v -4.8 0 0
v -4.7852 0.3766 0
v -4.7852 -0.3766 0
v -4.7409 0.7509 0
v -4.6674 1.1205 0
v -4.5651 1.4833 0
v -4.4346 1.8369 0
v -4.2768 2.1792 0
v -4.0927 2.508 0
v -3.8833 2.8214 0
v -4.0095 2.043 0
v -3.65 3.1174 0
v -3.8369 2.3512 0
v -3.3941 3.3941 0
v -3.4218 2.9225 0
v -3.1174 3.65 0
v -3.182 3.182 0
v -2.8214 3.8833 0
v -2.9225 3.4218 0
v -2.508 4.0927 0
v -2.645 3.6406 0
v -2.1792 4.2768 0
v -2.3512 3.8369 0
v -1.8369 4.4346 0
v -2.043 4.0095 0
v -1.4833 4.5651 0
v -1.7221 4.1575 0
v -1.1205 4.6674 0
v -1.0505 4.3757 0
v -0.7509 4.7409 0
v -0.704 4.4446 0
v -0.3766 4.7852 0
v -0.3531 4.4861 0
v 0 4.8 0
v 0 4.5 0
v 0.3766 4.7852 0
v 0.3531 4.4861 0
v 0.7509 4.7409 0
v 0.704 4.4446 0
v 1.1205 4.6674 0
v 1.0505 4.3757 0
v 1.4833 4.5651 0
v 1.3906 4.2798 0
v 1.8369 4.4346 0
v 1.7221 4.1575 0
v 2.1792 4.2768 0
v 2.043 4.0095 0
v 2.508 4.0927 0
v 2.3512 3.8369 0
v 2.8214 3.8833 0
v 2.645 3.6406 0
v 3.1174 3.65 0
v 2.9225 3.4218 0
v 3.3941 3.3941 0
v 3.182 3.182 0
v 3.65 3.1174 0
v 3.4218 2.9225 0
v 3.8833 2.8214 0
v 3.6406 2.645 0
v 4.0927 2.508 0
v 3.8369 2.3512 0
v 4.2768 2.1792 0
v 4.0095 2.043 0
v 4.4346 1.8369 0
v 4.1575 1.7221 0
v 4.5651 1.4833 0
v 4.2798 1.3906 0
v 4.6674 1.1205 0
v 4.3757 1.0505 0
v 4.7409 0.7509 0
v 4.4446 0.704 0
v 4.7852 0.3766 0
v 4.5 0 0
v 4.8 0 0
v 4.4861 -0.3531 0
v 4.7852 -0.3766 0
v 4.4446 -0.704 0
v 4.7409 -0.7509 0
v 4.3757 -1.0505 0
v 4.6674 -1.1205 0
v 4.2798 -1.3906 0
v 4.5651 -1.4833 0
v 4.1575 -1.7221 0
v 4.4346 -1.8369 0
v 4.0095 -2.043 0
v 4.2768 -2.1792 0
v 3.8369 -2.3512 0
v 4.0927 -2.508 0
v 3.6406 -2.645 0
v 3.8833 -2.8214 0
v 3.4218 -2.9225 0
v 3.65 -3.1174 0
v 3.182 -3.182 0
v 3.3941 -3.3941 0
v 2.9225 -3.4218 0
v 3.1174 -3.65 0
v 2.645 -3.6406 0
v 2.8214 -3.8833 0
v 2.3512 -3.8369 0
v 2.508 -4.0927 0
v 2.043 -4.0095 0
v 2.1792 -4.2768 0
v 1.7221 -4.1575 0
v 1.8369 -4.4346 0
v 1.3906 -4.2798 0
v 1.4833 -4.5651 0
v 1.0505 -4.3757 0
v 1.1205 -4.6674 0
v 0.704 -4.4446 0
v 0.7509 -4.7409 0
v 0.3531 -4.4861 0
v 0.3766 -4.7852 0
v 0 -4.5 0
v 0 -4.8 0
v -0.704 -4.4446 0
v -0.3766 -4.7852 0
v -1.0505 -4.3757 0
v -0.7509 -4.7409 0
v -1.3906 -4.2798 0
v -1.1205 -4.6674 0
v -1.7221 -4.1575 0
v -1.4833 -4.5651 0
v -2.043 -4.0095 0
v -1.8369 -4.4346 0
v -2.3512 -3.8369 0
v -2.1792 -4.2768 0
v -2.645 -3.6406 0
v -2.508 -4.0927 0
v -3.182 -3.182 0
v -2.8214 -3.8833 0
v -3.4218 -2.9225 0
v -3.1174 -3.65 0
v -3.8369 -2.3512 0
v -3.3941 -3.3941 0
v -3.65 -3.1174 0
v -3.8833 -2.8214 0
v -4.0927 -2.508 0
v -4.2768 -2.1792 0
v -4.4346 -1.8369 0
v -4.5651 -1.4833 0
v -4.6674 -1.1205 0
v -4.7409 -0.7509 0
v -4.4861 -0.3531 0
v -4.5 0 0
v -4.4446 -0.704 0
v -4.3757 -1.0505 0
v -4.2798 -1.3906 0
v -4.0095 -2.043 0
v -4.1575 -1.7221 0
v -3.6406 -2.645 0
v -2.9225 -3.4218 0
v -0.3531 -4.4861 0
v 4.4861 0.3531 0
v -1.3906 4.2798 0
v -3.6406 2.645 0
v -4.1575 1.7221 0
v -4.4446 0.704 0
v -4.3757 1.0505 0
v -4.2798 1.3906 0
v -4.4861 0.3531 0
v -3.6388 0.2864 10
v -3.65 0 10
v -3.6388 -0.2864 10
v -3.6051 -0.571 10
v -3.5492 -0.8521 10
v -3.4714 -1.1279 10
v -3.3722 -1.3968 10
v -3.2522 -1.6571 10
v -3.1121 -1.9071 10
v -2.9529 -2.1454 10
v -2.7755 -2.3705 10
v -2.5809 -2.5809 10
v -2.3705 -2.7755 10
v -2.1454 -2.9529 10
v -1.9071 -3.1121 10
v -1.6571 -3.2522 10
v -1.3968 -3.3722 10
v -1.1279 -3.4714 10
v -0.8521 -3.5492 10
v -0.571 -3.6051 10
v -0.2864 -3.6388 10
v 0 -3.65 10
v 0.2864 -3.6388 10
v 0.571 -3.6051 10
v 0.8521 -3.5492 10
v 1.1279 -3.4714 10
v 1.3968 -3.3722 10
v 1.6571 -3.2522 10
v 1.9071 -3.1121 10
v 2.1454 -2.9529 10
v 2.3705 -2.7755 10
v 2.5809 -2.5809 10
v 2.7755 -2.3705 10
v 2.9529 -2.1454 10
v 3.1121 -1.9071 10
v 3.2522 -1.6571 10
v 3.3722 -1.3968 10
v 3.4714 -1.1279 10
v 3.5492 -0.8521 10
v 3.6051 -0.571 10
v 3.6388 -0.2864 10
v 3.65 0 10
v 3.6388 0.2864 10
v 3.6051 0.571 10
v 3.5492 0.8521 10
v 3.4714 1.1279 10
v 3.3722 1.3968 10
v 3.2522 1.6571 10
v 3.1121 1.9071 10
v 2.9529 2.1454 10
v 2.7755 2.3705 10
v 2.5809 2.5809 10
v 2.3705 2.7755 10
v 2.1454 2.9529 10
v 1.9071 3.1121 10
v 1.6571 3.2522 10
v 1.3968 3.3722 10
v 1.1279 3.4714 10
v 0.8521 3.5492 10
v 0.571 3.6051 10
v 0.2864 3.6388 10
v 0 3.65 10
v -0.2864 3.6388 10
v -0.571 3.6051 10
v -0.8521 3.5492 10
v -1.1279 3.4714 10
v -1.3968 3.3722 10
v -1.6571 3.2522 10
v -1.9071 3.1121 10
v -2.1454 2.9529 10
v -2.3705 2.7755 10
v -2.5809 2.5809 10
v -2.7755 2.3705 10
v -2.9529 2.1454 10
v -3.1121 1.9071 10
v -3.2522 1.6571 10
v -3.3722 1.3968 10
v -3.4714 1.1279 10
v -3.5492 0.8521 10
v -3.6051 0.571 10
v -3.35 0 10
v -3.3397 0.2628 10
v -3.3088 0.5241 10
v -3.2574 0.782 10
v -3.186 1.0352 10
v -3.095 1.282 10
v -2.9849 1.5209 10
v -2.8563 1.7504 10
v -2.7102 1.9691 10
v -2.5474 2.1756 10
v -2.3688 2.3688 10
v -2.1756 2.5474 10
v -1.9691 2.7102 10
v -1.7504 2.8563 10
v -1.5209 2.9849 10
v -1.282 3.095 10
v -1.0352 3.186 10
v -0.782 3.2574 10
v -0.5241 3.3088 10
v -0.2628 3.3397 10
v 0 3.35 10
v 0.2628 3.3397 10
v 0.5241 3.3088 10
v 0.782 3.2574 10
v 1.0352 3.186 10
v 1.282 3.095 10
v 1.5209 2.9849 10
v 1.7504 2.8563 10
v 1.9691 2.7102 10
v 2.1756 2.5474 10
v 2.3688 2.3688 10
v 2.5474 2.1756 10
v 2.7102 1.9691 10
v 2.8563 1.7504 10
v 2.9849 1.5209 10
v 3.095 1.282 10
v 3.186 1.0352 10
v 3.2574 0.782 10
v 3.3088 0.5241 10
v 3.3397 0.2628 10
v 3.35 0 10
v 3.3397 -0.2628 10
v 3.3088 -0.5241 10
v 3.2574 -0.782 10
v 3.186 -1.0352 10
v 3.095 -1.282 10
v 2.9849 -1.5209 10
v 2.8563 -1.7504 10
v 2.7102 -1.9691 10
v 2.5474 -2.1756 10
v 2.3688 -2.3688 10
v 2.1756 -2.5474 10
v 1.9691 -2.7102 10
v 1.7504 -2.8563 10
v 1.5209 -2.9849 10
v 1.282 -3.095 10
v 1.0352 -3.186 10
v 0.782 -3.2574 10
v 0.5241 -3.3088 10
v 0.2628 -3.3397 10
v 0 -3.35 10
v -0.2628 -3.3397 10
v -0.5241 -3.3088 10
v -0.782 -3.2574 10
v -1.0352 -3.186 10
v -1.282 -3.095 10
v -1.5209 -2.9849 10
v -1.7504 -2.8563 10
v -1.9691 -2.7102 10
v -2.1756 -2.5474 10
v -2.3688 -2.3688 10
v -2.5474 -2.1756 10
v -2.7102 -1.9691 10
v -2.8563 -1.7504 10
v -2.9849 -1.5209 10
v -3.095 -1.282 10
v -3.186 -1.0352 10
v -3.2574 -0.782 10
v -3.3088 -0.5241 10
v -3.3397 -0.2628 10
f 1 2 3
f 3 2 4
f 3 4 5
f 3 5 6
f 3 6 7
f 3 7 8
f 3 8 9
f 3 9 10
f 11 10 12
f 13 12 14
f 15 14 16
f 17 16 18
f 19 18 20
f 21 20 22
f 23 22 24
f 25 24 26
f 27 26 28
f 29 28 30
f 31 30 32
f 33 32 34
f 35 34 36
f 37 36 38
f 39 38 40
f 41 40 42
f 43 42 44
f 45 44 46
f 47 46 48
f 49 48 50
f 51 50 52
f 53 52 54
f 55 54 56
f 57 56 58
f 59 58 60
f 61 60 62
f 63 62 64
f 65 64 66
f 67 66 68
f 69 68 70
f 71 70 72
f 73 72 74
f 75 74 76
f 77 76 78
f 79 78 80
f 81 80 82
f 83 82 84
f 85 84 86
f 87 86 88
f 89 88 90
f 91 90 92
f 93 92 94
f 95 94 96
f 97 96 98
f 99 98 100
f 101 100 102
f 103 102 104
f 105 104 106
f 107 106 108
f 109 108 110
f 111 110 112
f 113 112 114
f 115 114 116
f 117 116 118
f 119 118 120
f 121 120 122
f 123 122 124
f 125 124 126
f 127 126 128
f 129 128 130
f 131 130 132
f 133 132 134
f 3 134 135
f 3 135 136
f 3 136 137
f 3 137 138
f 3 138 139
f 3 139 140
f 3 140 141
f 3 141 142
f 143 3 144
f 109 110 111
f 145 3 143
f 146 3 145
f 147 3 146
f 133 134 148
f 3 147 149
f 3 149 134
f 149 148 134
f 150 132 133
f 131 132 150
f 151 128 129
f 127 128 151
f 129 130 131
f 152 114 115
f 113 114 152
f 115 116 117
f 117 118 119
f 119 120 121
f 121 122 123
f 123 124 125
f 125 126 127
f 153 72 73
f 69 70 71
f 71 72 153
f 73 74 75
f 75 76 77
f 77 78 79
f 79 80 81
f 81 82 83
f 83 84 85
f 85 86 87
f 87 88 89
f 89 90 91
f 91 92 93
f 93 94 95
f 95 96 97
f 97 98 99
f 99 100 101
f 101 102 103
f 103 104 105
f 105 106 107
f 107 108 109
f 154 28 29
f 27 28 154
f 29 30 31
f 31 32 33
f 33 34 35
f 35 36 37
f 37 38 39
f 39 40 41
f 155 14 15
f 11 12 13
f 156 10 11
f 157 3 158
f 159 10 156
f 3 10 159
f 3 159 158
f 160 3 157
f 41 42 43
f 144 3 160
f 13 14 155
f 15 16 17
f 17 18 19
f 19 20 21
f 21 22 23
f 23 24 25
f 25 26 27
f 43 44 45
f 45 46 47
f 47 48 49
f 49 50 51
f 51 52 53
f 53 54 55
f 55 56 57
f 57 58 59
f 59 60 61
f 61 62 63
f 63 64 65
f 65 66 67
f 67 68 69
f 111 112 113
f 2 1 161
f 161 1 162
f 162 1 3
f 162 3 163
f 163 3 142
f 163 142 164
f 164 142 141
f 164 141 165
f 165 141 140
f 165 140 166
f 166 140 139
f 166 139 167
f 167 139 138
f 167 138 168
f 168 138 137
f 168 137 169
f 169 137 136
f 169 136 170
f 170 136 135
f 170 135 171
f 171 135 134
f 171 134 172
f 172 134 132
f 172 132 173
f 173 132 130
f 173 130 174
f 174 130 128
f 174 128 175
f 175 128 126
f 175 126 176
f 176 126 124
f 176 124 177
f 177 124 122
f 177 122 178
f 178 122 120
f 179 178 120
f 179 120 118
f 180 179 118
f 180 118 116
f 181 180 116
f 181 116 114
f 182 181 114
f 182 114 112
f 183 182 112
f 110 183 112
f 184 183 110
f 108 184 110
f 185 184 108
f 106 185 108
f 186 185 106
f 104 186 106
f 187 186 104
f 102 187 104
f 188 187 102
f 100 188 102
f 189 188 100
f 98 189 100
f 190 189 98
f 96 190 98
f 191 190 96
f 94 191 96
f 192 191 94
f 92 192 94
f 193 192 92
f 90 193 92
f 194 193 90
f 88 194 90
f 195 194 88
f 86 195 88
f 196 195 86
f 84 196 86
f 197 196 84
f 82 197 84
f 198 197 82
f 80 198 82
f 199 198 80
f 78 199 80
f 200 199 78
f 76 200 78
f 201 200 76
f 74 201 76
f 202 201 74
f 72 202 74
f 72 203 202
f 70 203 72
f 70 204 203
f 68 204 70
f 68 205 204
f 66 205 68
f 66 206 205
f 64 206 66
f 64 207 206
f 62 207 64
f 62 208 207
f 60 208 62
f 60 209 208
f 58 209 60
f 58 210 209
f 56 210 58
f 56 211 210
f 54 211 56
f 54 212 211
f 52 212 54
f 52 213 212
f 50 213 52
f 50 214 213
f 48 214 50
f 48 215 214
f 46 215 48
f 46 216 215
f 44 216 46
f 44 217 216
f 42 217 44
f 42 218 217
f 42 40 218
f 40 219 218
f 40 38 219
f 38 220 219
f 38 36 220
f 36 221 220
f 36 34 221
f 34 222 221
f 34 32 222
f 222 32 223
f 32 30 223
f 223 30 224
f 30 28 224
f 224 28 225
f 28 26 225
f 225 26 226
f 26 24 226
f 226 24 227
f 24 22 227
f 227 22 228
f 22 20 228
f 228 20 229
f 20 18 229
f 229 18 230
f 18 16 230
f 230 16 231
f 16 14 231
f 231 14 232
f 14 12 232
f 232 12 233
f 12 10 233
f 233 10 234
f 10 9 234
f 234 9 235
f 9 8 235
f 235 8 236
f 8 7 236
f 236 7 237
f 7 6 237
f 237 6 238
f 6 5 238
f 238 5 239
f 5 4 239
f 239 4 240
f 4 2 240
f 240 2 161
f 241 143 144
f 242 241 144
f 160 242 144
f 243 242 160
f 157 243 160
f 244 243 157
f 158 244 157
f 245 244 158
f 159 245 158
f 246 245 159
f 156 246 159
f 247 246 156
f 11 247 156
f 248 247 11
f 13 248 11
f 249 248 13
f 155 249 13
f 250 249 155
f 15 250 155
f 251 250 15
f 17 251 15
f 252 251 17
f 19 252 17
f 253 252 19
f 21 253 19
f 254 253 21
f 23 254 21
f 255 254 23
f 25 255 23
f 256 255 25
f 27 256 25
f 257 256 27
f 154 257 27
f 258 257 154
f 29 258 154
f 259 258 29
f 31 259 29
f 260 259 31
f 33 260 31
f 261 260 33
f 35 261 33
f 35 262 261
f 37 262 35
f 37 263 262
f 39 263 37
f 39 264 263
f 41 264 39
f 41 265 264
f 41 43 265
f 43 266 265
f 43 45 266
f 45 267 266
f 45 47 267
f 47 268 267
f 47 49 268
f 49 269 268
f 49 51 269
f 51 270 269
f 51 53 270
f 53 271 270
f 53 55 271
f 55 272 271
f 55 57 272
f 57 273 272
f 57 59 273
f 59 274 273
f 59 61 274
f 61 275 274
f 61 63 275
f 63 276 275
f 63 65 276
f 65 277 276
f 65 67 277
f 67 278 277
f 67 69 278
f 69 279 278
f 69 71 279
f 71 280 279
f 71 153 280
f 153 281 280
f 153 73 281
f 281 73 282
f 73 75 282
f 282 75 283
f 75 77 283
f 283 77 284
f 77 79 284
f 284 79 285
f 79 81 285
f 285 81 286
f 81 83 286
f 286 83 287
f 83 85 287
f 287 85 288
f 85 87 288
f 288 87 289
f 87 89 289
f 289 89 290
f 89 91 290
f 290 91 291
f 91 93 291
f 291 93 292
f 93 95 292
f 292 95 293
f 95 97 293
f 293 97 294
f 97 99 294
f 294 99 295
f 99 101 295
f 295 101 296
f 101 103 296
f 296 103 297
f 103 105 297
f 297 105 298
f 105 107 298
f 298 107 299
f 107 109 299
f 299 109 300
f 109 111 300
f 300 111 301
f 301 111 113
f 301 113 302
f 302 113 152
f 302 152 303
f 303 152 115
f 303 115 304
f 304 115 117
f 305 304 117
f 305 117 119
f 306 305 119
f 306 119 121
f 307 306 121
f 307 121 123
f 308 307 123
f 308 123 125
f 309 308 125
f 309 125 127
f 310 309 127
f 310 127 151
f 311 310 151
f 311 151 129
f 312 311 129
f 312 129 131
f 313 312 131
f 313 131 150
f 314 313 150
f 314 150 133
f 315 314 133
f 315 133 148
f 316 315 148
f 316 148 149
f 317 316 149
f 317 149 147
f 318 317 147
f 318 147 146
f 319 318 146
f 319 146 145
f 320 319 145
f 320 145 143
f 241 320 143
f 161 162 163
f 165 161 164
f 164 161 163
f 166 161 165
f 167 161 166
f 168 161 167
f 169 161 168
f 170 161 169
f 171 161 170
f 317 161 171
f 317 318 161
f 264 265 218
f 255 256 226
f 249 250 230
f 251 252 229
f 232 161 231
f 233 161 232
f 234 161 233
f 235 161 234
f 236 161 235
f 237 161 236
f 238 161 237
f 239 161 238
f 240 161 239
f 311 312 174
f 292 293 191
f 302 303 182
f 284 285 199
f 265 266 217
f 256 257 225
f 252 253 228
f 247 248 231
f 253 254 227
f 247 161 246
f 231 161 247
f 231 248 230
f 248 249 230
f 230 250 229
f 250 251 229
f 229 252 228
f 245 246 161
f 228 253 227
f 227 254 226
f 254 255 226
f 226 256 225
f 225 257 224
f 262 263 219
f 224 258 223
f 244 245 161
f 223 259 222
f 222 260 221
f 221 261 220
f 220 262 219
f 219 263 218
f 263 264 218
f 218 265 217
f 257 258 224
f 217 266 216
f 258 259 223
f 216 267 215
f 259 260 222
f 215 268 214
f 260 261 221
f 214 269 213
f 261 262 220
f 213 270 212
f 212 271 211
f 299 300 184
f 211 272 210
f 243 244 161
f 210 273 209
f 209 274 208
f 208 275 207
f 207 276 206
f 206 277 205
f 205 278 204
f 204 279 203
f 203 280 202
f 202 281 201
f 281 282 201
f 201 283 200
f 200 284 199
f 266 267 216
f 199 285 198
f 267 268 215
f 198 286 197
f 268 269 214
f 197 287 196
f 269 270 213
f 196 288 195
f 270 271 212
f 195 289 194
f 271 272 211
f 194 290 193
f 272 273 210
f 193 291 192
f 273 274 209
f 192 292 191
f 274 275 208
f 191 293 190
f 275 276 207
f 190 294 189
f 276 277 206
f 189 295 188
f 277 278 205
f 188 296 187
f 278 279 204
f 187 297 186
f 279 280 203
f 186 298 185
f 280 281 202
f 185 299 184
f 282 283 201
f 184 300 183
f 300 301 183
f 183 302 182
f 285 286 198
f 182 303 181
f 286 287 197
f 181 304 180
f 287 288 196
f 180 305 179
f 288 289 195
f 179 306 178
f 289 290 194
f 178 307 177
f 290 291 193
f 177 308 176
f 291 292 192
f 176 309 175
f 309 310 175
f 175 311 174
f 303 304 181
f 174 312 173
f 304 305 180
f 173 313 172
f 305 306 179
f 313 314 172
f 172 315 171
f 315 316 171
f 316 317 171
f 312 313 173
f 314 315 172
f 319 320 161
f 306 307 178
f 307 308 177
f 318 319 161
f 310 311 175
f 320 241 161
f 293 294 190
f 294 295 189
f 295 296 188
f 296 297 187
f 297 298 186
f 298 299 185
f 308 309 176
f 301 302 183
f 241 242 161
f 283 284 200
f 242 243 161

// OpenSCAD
difference() {
    cylinder(d1=9.6, d2=7.3, h=10, $fn=80);

    union() {
            cylinder(d1=9, d2=6.7, h=10, $fn=80);
        
        translate([0, 0, 15])
            cylinder(d=6.7, h=5, $fn=80);
        
        translate([0, 0, -5])
            cylinder(d=9, h=5, $fn=80);
    }
}
